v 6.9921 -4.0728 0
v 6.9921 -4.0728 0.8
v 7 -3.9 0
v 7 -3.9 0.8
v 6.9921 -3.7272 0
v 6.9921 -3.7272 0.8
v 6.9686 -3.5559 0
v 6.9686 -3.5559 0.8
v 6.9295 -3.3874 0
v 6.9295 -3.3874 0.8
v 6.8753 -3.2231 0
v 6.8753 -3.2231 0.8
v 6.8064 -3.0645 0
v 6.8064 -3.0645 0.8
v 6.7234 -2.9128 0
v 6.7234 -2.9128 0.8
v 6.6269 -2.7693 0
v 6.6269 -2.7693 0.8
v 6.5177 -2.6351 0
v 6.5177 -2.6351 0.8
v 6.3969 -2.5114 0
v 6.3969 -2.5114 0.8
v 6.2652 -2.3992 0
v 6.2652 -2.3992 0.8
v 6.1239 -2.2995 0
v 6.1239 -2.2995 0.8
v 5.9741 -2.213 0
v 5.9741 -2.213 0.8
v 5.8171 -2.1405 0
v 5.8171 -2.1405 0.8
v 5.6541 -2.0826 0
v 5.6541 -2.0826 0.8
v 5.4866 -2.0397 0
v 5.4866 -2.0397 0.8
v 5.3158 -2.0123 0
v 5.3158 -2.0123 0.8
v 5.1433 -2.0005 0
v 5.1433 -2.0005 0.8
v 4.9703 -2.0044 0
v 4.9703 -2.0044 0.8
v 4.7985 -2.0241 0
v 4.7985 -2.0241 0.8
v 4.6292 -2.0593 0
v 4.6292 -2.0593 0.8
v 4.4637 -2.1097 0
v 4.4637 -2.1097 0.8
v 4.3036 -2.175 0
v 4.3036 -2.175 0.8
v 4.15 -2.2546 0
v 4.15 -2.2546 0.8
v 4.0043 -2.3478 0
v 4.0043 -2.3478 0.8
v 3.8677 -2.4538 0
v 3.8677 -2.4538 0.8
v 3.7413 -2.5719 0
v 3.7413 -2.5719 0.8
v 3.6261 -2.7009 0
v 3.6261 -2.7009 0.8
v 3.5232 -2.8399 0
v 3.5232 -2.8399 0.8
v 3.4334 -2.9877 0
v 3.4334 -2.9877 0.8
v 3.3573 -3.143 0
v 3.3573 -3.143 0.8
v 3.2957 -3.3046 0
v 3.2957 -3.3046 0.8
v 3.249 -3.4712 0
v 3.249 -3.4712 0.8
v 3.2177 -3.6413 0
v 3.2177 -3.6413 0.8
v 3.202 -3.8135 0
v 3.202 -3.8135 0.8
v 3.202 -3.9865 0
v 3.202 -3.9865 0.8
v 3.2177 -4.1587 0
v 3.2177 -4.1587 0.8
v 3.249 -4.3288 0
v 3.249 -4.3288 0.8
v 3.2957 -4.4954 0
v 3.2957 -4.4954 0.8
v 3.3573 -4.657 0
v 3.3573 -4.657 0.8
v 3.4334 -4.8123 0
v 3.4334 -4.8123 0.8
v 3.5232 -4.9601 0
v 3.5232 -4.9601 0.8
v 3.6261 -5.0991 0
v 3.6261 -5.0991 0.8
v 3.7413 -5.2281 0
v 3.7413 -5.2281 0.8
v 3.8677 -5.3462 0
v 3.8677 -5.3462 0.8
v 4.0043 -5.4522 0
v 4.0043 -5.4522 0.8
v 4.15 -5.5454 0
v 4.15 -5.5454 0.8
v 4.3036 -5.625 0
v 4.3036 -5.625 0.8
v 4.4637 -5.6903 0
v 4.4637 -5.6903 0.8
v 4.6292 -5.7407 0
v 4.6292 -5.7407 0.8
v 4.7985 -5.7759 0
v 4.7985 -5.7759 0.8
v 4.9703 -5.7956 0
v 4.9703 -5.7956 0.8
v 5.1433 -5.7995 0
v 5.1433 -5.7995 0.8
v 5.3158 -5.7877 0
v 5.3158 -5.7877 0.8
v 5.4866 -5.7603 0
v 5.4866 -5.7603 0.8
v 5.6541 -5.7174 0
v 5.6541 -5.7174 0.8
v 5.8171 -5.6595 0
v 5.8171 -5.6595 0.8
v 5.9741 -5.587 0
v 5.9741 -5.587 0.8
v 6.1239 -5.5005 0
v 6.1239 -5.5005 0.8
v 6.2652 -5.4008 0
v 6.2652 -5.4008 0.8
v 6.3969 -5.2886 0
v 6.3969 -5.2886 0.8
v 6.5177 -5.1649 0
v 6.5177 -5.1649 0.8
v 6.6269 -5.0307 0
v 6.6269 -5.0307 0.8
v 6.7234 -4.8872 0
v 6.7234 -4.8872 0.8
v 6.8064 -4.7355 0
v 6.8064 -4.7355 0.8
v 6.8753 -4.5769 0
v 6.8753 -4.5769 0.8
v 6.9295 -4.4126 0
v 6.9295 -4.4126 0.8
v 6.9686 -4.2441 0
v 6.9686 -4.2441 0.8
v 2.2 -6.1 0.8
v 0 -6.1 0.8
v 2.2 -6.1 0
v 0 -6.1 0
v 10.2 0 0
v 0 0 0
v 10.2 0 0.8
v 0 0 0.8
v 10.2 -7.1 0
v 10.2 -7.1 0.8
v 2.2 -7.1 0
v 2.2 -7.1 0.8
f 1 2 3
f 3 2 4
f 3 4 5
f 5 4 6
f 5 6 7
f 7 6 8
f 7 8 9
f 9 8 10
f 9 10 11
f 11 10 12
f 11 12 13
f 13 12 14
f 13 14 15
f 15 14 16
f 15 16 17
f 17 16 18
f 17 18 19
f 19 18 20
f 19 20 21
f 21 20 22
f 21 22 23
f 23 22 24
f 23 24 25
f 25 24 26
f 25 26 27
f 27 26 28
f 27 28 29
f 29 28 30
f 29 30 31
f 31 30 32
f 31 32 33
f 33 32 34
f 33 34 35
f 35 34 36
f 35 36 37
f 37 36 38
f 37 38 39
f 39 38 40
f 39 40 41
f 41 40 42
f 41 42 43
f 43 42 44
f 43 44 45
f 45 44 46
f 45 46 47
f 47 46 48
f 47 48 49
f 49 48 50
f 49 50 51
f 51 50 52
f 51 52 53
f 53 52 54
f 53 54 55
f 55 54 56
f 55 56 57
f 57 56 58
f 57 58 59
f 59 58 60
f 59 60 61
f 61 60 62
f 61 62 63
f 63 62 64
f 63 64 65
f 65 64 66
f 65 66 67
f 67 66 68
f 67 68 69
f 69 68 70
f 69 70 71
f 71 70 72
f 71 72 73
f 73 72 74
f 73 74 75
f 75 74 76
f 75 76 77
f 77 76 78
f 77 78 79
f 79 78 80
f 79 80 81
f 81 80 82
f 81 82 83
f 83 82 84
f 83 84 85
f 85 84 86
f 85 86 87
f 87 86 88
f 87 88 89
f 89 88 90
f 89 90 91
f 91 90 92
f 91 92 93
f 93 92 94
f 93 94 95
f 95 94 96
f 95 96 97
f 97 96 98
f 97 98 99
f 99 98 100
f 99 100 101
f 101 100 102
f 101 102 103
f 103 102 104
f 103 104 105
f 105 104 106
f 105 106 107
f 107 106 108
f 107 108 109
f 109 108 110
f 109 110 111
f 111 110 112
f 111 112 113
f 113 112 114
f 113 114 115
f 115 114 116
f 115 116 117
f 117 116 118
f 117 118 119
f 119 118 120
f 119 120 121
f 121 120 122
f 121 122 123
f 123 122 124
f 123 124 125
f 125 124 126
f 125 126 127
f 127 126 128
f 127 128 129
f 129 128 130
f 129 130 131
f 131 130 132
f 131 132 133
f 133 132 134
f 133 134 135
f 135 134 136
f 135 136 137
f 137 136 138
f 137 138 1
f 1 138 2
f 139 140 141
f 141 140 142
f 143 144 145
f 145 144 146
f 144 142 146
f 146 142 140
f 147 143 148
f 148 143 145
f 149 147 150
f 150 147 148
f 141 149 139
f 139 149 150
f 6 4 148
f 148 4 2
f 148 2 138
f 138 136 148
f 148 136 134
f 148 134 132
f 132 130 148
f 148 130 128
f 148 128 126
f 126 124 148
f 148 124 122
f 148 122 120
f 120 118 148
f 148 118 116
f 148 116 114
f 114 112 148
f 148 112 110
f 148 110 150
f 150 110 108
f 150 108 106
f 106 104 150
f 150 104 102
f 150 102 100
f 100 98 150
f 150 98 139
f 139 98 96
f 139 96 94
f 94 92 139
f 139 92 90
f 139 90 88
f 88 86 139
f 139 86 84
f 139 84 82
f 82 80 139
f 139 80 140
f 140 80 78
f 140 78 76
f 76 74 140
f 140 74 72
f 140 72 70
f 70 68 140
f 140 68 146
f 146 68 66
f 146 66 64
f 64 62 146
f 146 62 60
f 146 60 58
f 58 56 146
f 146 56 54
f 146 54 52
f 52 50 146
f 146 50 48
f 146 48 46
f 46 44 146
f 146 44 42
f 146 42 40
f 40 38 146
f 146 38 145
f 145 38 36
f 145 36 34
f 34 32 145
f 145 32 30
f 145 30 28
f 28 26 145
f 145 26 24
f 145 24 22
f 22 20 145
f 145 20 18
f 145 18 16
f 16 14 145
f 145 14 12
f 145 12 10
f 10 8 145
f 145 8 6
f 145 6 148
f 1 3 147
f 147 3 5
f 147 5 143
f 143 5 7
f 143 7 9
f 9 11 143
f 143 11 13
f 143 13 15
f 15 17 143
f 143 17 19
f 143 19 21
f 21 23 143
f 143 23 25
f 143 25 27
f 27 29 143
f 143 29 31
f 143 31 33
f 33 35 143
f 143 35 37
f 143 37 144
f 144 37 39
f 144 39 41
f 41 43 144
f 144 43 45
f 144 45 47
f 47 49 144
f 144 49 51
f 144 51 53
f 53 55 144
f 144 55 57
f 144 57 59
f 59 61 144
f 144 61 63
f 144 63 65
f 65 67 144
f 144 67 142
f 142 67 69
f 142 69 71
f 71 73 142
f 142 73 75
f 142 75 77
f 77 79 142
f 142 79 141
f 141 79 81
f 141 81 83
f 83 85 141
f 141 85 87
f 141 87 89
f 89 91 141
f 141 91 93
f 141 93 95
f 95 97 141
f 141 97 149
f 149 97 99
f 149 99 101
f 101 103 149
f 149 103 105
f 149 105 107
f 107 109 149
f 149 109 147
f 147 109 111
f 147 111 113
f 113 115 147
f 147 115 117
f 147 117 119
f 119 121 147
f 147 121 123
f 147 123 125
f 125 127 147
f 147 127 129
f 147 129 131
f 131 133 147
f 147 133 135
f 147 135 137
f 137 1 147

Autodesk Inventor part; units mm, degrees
ref_plane "YZ Plane" through (0, 0, 0) normal (1, 0, 0) x (0, 1, 0)
ref_plane "XZ Plane" through (0, 0, 0) normal (0, 1, 0) x (-1, 0, 0)
ref_plane "XY Plane" through (0, 0, 0) normal (0, 0, 1) x (1, 0, 0)
sketch "Эскиз1" plane through (0, 0, 0) normal (0, 0, 1) x (1, 0, 0)
  line L0 (0, 0) -> (10.2, 0)
  line L1 (10.2, 0) -> (10.2, -6.1)
  line L2 (10.2, -6.1) -> (0, -6.1)
  line L3 (0, -6.1) -> (0, 0)
  line L4 (10.2, -6.1) -> (2.2, -6.1)
  line L5 (2.2, -6.1) -> (2.2, -7.1)
  line L6 (2.2, -7.1) -> (10.2, -7.1)
  line L7 (10.2, -7.1) -> (10.2, -6.1)
  dimension "d0" = 10.2
  dimension "d1" = 6.1
  dimension "d2" = 8
  dimension "d3" = 1
extrude "Выдавливание1" add sketch "Эскиз1" along normal blind 0.8
sketch "Эскиз2" plane through (0, 0, 0.8) normal (0, 0, 1) x (1, 0, 0)
  line L0 (2.2, -7.1) -> (10.2, -7.1) projected
  line L1 (10.2, -7.1) -> (10.2, -3.9)
  line L2 (10.2, -7.1) -> (10.2, 0) projected
  line L3 (10.2, -3.9) -> (5.1, -3.9)
  line L4 (0, 0) -> (0, -6.1) projected
  circle A0 centre (5.1, -3.9) radius 1.9
  dimension "d6" = 3.2
  dimension "d7" = 5.1
  dimension "d8" = 3.8
extrude "Выдавливание2" cut sketch "Эскиз2" against normal blind 0.8
properties part number "shayba kvadrat"
